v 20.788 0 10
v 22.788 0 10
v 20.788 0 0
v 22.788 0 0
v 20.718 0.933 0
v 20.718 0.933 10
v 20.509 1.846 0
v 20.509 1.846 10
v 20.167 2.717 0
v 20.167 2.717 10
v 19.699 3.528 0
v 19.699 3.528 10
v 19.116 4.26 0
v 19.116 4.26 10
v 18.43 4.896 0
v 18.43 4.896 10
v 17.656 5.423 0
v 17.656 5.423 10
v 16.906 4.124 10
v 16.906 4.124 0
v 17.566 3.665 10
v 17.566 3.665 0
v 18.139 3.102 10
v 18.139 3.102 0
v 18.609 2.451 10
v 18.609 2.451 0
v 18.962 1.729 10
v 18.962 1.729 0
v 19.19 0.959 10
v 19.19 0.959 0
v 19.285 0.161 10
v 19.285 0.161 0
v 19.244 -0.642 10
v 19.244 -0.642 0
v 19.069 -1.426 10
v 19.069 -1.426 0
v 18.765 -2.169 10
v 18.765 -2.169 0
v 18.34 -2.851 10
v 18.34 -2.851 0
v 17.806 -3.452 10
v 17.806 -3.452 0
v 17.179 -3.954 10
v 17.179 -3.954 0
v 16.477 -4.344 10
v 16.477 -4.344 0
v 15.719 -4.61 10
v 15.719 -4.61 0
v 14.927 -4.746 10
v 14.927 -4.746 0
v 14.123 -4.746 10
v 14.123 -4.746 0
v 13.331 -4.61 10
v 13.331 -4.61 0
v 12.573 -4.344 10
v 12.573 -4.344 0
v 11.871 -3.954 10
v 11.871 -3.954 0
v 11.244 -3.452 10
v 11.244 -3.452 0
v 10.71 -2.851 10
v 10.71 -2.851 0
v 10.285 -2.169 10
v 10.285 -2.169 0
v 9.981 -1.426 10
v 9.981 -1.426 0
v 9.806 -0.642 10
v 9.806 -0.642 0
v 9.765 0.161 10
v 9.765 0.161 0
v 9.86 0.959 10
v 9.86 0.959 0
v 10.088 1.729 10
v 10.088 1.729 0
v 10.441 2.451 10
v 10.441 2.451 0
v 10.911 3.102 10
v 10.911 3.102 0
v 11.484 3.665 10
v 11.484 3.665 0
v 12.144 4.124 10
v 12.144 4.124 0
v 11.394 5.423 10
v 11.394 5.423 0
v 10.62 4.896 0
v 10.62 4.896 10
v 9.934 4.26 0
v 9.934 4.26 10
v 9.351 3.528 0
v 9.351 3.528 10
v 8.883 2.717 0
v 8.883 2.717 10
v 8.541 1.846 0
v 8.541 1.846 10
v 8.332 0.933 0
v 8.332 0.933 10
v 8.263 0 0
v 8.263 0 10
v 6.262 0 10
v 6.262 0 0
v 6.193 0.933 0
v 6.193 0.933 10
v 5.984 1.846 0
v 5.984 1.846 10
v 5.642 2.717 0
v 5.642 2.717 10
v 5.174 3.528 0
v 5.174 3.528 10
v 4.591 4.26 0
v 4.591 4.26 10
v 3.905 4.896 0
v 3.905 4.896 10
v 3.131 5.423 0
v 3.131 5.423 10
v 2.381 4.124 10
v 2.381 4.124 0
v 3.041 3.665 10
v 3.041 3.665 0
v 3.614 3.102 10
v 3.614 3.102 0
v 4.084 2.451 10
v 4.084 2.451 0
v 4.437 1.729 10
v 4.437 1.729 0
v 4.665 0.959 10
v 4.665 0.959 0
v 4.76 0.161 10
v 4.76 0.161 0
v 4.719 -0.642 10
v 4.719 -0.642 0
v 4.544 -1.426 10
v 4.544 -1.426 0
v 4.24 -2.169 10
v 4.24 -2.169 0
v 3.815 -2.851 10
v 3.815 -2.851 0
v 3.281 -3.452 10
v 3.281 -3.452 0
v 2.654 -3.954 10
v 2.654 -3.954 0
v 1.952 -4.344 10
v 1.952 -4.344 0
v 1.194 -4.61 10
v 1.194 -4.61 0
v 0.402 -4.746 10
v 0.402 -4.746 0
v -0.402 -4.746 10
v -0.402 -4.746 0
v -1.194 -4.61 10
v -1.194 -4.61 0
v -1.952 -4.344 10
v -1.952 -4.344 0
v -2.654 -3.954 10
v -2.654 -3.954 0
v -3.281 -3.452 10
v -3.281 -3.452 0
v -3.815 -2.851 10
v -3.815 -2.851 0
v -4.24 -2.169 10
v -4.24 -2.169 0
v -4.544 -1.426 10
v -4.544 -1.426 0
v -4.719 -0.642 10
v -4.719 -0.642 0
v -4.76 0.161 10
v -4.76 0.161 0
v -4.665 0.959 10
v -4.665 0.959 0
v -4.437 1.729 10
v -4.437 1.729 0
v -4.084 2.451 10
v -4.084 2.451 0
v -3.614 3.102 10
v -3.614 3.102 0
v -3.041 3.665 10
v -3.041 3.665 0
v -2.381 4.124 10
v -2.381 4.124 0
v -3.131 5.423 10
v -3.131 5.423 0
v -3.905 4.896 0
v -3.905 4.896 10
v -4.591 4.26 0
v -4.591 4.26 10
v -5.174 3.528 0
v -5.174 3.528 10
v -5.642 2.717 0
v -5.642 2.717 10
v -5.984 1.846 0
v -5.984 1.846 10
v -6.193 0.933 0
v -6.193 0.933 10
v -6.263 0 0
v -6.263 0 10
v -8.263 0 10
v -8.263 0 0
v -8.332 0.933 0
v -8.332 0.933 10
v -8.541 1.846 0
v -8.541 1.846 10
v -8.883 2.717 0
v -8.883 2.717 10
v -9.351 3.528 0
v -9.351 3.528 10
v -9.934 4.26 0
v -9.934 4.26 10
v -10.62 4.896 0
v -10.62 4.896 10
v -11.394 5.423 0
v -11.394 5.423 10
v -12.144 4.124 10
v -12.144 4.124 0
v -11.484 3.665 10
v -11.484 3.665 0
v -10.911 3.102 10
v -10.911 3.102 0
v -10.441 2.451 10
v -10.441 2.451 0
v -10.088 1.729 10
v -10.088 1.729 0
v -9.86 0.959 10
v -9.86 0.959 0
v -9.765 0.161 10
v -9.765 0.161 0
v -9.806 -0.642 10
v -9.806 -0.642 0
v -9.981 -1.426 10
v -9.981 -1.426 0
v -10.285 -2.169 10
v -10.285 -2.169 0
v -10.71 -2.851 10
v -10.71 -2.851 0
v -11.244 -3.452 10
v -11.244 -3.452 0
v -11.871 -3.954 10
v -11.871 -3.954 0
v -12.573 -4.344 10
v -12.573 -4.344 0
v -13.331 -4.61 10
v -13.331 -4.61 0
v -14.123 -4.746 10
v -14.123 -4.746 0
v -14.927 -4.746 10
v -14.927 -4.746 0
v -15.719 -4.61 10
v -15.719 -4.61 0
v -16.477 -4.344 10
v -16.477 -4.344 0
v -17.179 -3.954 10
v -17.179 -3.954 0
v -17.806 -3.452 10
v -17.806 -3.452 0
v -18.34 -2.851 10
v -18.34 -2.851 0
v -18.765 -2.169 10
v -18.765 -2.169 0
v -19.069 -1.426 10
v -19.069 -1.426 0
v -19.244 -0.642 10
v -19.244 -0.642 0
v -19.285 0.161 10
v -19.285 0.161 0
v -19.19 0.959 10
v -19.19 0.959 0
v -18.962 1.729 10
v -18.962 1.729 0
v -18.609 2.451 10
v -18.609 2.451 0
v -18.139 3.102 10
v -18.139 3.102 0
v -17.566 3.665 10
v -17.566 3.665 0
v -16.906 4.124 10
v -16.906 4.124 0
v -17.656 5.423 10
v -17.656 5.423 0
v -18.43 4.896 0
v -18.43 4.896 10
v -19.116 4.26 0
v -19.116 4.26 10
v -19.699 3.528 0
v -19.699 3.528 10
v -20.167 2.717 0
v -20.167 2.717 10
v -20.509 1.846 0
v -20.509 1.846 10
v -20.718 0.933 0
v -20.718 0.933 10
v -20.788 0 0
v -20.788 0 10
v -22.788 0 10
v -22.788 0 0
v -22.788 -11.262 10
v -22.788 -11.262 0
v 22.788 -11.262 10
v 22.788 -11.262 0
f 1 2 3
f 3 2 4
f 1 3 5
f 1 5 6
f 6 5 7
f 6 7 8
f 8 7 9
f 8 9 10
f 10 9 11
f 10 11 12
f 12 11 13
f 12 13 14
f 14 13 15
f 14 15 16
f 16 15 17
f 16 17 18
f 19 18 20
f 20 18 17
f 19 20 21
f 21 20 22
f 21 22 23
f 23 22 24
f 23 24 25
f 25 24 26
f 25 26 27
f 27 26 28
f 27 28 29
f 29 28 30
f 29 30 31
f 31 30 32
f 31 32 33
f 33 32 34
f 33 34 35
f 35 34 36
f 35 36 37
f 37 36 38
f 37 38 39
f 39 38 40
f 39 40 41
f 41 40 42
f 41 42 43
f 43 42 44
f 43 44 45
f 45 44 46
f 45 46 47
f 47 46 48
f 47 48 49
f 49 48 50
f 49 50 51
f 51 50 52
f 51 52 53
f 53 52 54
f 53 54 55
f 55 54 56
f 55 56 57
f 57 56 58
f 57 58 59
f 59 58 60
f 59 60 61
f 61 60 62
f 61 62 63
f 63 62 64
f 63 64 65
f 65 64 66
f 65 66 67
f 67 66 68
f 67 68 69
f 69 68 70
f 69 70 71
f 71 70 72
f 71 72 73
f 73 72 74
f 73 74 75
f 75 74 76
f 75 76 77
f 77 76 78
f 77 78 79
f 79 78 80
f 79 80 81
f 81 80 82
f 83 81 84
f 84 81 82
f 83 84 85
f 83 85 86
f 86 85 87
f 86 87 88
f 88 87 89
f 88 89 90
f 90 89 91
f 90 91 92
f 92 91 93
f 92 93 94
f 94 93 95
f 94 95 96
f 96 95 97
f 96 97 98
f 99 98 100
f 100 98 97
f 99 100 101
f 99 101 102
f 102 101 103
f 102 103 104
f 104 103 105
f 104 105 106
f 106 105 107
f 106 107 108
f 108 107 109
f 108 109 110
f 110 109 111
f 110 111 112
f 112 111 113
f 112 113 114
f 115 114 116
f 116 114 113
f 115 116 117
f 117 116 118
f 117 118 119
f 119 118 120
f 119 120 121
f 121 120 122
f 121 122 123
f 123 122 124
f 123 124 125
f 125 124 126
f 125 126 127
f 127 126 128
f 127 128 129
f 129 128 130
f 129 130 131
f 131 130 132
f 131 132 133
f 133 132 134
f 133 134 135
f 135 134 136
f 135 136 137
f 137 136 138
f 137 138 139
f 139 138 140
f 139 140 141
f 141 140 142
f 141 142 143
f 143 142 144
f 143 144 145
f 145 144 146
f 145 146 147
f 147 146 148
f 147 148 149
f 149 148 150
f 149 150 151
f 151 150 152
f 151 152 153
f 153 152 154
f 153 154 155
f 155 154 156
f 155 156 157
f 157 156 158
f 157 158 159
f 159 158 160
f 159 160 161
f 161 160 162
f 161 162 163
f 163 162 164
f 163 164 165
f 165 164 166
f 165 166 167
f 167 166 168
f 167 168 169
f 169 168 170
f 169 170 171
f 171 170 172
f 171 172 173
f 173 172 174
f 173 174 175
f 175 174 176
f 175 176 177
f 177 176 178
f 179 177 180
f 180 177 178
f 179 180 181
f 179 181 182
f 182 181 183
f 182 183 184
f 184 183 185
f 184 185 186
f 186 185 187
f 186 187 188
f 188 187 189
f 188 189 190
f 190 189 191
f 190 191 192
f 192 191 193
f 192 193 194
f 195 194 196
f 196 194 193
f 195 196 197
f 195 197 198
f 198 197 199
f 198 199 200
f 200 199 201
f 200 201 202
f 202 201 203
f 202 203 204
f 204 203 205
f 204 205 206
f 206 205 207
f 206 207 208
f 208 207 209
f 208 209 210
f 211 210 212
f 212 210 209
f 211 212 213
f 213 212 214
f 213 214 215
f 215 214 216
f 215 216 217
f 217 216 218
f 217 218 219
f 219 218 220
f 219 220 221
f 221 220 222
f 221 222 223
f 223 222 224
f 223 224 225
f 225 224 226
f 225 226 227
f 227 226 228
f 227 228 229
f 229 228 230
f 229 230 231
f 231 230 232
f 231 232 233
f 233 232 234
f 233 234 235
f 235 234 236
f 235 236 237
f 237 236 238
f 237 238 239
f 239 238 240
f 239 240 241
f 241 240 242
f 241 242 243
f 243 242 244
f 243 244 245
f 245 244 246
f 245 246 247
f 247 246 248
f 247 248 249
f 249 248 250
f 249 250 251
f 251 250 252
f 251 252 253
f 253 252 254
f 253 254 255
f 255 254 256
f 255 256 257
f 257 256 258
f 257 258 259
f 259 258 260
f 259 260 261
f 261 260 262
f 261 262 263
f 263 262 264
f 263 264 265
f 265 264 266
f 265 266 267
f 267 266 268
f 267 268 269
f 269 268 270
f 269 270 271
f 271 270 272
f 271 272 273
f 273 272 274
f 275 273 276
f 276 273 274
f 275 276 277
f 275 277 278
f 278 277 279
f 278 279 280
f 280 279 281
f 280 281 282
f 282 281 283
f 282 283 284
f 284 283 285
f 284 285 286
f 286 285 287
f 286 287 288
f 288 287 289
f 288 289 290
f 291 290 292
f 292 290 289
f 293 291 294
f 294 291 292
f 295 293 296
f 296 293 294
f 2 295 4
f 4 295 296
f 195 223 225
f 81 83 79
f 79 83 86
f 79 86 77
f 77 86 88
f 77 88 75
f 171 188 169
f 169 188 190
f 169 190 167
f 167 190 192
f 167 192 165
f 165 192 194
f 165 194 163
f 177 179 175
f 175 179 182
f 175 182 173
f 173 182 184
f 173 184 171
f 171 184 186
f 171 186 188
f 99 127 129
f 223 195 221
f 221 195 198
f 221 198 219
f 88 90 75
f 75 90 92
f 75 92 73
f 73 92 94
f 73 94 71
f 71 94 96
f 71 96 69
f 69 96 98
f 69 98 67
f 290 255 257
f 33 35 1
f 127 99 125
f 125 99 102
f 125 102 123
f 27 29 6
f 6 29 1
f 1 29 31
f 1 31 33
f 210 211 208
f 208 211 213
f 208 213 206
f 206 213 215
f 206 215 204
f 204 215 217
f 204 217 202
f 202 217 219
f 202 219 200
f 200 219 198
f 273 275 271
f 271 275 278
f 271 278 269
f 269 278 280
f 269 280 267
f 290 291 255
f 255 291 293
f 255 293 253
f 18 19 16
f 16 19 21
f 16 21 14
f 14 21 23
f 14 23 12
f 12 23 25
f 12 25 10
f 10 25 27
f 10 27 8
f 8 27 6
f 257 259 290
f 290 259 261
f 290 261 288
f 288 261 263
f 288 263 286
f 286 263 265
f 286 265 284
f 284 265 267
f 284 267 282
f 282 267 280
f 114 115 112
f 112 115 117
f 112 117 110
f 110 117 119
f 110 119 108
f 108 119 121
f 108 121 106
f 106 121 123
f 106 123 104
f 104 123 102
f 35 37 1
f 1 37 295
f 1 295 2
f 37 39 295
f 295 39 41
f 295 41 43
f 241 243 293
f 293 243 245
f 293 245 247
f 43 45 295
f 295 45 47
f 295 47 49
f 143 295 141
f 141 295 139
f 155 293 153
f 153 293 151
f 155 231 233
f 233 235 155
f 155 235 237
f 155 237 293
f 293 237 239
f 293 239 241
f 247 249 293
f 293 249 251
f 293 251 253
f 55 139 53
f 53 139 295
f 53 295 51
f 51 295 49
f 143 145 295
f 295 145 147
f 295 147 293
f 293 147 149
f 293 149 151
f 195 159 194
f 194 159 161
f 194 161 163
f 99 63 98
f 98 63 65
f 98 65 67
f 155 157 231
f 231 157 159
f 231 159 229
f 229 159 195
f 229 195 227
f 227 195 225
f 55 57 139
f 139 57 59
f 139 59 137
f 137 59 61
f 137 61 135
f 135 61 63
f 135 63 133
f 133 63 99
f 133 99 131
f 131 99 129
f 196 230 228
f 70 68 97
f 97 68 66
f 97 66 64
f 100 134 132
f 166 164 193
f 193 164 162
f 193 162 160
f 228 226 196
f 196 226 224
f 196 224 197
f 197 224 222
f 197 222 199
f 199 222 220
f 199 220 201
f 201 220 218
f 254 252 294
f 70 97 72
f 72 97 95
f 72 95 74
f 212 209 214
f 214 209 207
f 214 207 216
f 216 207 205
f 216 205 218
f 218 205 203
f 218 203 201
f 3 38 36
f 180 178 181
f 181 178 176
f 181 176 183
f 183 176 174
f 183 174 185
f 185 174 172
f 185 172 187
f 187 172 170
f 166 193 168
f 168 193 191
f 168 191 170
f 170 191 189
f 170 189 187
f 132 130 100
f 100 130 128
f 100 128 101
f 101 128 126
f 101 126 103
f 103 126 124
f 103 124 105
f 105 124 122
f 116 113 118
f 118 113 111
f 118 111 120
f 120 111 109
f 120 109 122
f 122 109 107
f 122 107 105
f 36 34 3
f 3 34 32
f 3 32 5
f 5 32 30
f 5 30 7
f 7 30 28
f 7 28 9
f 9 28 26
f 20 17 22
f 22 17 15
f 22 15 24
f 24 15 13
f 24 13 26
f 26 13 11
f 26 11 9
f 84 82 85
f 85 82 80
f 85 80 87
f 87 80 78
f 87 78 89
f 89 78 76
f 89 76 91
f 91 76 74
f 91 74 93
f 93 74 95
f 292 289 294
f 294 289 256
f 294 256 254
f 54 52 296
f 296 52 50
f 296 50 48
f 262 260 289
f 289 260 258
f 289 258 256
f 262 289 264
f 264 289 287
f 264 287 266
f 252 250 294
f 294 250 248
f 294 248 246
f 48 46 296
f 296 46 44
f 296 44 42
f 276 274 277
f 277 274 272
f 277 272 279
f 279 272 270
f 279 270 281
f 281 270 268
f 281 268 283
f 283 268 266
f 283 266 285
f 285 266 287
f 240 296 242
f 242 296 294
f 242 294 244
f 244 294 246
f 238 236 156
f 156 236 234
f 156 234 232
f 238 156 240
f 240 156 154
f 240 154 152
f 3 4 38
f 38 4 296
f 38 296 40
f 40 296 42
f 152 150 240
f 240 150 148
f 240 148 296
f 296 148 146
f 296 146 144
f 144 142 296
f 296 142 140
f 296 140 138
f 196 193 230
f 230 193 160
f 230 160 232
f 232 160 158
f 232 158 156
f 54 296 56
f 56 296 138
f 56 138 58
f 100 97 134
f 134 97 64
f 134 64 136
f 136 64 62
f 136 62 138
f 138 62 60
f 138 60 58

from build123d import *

# Parameters (mm, degrees)
BOSS_EXTRUDE1_DEPTH = 10


with BuildPart() as part:
    # Sketch4 → Boss-Extrude1 (new body)
    with BuildSketch(Plane.XY):
        with BuildLine():
            Line((-20.7875, 0), (-22.7875, 0))
            Line((-22.7875, 0), (-22.7875, -11.2625))
            Line((-22.7875, -11.2625), (22.7875, -11.2625))
            Line((22.7875, -11.2625), (22.7875, 0))
            Line((22.7875, 0), (20.7875, 0))
            ThreePointArc((20.7875, 0), (19.948484091, 3.13125), (17.65625, 5.423484091))
            Line((17.65625, 5.423484091), (16.90625, 4.124445986))
            ThreePointArc((16.90625, 4.124445986), (14.525, -4.7625), (12.14375, 4.124445986))
            Line((12.14375, 4.124445986), (11.39375, 5.423484091))
            ThreePointArc((11.39375, 5.423484091), (9.101515909, 3.13125), (8.2625, 0))
            Line((8.2625, 0), (6.2625, 0))
            ThreePointArc((6.2625, 0), (5.423484091, 3.13125), (3.13125, 5.423484091))
            Line((3.13125, 5.423484091), (2.38125, 4.124445986))
            ThreePointArc((2.38125, 4.124445986), (0, -4.7625), (-2.38125, 4.124445986))
            Line((-2.38125, 4.124445986), (-3.13125, 5.423484091))
            ThreePointArc((-3.13125, 5.423484091), (-5.423484091, 3.13125), (-6.2625, 0))
            Line((-6.2625, 0), (-8.2625, 0))
            ThreePointArc((-8.2625, 0), (-9.101515909, 3.13125), (-11.39375, 5.423484091))
            Line((-11.39375, 5.423484091), (-12.14375, 4.124445986))
            ThreePointArc((-12.14375, 4.124445986), (-14.525, -4.7625), (-16.90625, 4.124445986))
            Line((-16.90625, 4.124445986), (-17.65625, 5.423484091))
            ThreePointArc((-17.65625, 5.423484091), (-19.948484091, 3.13125), (-20.7875, 0))
        make_face()
    extrude(amount=BOSS_EXTRUDE1_DEPTH)


solid = part.part
